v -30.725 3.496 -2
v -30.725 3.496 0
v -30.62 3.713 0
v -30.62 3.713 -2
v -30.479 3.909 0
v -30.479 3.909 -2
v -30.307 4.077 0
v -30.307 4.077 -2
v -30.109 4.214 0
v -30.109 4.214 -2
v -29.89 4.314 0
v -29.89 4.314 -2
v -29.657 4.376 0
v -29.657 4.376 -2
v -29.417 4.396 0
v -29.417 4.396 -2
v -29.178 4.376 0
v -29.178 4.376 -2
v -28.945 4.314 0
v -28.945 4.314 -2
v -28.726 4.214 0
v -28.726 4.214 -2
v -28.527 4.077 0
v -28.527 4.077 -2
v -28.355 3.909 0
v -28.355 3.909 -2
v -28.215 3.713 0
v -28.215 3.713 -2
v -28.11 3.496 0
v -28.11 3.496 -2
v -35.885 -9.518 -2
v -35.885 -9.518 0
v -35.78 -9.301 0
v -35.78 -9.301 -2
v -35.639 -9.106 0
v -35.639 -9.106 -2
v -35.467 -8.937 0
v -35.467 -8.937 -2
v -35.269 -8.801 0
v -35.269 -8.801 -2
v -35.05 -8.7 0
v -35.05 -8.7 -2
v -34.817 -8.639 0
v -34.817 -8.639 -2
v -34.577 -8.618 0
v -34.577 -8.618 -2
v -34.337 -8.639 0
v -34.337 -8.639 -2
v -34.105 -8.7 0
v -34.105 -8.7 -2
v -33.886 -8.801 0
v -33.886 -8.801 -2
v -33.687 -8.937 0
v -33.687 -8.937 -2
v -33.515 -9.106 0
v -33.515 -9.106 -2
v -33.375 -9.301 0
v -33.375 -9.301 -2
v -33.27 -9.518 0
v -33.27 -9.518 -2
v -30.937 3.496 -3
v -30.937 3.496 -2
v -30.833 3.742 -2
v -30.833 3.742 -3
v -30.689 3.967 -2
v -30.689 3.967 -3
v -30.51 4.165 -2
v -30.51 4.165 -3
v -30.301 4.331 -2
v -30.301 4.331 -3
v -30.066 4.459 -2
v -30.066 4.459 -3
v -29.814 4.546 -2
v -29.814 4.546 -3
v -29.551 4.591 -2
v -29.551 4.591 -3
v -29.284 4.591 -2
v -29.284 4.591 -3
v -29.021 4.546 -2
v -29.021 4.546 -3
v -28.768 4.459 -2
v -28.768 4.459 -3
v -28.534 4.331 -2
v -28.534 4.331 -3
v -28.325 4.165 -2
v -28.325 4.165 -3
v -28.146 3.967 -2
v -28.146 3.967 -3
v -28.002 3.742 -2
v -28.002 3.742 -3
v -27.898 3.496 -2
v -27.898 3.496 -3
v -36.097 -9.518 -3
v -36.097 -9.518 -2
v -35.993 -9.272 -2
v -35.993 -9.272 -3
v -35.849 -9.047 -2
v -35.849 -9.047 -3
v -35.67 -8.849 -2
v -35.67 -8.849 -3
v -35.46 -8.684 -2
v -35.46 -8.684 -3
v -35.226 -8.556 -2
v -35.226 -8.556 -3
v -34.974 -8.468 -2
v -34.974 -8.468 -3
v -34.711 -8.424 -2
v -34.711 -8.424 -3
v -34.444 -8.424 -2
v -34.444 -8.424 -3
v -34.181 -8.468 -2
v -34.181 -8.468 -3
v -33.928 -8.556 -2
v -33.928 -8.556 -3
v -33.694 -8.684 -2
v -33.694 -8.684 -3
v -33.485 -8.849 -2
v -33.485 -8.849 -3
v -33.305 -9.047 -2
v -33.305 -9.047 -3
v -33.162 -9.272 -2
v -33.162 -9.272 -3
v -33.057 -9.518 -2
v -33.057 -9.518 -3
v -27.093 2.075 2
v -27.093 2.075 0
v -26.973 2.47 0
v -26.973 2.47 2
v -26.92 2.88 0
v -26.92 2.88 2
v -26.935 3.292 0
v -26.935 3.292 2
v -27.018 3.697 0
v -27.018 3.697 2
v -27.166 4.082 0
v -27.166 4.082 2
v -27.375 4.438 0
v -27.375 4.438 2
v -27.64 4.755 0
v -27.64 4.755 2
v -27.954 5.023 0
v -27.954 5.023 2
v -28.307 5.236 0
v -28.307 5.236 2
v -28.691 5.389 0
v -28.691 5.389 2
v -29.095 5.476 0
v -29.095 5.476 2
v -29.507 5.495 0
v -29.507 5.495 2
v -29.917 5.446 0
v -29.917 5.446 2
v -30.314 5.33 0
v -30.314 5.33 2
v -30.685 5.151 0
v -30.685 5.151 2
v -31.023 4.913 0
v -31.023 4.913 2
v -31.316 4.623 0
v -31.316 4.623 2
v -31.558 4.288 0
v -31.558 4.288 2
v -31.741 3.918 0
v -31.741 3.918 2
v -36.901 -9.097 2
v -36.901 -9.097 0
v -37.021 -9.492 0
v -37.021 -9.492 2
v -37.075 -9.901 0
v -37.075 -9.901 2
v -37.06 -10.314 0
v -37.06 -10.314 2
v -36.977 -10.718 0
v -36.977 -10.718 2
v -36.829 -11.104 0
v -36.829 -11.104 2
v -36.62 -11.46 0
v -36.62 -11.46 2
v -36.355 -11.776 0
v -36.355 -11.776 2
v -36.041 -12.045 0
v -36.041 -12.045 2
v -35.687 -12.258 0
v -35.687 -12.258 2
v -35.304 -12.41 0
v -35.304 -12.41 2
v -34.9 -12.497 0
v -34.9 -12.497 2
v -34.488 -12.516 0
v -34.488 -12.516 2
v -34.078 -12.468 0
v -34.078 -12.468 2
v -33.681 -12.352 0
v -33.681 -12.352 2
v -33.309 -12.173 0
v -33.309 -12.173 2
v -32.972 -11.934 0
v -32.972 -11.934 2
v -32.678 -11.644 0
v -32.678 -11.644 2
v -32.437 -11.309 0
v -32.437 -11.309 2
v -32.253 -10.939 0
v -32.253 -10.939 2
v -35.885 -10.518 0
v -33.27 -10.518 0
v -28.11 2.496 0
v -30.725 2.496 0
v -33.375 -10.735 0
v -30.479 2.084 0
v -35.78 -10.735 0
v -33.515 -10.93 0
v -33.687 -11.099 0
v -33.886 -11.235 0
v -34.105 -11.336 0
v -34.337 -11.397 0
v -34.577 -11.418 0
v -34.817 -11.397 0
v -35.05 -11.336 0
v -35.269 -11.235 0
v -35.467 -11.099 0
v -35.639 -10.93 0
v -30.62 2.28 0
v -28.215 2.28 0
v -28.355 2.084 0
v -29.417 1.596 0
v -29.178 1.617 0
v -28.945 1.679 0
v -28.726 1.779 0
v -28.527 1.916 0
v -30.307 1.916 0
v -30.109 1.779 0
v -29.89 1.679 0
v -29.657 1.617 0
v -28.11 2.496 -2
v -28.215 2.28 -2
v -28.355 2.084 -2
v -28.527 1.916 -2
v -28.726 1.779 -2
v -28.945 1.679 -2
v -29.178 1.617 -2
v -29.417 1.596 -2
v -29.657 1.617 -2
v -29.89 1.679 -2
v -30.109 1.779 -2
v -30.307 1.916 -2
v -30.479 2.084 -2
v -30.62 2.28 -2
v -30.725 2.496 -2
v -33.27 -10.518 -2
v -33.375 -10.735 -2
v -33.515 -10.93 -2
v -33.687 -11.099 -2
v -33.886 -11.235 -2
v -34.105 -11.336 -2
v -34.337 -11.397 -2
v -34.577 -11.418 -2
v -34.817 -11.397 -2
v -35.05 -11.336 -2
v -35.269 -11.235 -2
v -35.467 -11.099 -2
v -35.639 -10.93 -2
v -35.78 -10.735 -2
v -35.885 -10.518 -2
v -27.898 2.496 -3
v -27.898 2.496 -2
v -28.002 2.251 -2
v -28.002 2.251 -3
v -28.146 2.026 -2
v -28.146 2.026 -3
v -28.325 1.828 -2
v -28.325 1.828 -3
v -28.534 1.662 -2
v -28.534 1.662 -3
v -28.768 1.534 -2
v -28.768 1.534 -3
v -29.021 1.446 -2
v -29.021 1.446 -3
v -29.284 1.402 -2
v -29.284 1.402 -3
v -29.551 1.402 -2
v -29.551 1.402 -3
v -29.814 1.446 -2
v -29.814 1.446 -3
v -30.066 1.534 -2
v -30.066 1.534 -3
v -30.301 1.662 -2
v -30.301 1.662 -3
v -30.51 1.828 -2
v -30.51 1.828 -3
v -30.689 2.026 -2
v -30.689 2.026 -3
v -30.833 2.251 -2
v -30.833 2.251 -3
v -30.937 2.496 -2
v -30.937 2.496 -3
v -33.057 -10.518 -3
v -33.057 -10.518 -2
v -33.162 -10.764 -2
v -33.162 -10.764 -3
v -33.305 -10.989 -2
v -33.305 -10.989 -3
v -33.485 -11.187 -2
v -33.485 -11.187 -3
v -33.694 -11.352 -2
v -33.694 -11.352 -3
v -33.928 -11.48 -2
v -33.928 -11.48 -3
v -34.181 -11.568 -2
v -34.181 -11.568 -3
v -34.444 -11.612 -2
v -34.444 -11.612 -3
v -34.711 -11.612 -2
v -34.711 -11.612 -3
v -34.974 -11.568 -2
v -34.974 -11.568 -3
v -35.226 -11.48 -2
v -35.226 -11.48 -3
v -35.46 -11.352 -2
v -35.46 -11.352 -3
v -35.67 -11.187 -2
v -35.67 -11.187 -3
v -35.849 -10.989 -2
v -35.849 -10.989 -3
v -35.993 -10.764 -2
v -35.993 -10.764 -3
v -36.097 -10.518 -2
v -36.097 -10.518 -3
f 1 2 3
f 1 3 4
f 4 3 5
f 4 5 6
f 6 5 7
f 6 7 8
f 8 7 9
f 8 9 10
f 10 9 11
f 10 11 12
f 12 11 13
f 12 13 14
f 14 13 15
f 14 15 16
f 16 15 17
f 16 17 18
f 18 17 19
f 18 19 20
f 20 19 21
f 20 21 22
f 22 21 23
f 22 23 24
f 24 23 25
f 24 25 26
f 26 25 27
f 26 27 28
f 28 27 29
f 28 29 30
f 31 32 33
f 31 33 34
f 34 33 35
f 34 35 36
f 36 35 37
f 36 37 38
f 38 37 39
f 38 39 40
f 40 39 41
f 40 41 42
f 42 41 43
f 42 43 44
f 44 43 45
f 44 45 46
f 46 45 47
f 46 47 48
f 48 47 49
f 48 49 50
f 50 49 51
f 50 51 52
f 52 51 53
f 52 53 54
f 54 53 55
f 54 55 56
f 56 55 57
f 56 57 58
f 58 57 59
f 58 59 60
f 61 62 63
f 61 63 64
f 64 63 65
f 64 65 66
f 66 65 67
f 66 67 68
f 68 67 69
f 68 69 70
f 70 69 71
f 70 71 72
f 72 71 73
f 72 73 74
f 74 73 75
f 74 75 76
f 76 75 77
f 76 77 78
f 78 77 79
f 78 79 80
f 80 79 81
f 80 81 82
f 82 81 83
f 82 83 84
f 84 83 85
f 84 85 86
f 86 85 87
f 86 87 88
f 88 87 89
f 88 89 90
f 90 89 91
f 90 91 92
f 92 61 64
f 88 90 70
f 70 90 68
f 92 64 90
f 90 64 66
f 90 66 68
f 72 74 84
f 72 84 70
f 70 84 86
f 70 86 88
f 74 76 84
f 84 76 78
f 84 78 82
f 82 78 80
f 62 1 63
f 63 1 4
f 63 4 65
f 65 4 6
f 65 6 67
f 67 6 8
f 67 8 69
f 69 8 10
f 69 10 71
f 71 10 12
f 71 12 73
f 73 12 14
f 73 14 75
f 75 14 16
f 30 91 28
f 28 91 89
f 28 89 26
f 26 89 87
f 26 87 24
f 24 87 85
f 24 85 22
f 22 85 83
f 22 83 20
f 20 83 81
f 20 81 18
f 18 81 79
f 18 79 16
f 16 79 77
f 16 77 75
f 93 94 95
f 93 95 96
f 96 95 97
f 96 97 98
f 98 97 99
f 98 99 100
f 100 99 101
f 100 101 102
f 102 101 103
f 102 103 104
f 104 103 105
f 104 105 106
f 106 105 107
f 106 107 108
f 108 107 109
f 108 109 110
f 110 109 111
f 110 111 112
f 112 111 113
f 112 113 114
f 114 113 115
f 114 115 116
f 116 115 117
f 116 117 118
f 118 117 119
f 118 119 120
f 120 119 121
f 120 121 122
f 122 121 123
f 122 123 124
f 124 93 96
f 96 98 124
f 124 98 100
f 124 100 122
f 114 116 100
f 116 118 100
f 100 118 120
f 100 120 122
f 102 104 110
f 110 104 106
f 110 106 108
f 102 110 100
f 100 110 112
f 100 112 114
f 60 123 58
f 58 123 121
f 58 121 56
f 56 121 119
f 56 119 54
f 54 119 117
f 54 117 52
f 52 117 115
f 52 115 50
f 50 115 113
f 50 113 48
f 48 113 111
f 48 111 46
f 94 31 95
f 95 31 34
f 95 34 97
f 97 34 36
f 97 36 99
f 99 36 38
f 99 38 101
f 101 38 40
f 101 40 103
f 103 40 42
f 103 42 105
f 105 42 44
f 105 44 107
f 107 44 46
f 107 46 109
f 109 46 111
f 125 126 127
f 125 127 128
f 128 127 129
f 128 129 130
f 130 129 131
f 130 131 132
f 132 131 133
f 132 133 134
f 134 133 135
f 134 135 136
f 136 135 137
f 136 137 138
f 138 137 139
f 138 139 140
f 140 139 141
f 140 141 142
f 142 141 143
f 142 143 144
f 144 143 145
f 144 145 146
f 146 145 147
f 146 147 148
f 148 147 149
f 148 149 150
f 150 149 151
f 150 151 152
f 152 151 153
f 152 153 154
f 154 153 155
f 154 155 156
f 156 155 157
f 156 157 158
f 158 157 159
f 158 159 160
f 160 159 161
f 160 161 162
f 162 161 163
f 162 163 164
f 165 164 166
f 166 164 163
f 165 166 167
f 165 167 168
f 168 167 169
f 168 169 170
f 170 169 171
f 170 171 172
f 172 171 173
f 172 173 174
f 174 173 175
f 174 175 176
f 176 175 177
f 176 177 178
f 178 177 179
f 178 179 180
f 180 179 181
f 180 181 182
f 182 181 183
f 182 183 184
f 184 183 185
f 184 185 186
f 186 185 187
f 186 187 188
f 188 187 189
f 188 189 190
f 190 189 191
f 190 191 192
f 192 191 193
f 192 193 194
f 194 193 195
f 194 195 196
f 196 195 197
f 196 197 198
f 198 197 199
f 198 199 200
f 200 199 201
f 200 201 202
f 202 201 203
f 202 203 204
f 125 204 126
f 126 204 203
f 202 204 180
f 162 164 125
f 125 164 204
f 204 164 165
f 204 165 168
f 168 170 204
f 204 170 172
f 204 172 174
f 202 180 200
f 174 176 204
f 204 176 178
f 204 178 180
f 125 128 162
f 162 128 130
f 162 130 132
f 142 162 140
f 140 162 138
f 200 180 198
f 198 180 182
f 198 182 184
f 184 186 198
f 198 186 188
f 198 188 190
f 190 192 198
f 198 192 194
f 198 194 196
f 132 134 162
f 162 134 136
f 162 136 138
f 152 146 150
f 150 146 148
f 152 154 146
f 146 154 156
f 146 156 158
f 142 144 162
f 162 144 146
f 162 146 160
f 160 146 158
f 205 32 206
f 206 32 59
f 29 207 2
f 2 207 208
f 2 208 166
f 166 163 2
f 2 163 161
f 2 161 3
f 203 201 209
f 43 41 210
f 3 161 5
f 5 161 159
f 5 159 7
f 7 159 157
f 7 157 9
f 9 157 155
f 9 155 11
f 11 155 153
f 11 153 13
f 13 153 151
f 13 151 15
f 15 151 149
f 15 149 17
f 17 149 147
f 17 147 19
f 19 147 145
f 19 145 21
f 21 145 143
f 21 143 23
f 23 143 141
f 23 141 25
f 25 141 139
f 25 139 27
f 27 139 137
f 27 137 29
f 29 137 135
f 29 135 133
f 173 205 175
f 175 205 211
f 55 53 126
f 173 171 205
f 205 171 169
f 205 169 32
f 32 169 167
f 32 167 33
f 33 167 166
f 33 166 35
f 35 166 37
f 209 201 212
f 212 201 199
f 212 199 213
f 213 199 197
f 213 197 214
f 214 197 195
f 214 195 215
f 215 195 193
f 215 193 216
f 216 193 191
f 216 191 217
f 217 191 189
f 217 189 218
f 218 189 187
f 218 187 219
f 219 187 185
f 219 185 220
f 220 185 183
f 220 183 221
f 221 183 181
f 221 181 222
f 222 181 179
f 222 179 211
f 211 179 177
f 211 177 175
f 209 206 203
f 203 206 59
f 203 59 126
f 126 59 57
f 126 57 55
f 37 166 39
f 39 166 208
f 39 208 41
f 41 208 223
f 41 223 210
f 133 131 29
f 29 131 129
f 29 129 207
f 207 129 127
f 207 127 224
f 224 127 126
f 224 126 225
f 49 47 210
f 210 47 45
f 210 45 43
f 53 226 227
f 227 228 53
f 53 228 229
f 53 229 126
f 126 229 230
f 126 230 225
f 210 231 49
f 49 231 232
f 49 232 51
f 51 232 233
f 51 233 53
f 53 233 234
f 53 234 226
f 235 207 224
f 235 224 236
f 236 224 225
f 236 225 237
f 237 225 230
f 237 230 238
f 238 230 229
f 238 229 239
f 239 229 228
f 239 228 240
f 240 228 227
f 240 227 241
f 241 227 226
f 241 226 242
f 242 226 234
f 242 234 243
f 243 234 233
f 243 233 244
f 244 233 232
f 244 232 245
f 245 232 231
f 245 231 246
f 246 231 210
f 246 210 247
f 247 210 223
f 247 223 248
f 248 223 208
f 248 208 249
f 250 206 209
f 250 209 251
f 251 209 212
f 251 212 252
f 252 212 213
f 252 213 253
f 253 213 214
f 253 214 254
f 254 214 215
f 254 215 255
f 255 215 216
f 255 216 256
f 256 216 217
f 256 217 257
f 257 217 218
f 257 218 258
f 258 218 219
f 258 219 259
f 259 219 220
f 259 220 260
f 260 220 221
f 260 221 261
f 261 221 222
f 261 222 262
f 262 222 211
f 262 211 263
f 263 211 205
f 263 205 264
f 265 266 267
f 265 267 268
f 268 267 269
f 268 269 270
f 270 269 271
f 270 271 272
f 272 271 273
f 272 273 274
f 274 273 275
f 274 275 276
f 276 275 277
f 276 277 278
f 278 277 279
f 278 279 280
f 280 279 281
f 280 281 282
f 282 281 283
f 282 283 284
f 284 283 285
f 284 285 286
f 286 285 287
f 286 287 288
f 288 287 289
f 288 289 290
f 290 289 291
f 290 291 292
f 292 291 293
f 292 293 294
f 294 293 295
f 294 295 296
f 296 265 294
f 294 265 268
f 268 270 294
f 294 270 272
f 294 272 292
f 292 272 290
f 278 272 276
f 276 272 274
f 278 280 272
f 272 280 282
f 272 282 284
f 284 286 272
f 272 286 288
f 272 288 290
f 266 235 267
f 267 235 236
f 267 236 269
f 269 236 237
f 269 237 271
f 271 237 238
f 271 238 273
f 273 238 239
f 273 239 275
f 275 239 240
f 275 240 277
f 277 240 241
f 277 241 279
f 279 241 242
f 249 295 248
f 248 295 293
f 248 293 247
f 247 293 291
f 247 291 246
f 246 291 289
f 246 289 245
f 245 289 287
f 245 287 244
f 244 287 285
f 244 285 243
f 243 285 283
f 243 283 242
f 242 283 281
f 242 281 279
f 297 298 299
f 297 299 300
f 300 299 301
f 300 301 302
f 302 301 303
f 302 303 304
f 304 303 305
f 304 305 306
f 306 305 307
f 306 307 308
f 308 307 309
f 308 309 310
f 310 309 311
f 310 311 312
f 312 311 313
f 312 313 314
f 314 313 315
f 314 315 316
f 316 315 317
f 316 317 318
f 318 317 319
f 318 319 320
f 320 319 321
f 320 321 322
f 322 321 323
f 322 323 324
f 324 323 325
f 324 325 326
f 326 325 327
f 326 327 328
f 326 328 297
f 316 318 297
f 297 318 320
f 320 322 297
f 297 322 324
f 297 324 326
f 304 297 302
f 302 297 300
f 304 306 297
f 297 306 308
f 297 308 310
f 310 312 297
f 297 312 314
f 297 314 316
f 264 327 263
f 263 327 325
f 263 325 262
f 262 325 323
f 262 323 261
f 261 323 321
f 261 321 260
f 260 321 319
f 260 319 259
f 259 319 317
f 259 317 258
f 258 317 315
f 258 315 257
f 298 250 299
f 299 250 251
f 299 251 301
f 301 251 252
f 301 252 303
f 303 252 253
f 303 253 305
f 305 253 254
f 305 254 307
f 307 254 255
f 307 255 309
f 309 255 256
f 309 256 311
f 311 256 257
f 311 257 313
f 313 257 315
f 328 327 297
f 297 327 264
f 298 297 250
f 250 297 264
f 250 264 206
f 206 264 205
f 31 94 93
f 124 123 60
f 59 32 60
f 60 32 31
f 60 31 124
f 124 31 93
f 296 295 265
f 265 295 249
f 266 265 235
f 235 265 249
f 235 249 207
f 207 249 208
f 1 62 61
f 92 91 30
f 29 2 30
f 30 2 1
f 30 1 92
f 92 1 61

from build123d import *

# Parameters (mm, degrees)
BOSS_EXTRU_1_DEPTH      = 2
ESQUISSE2_R             = 1.4
BOSS_EXTRU_2_DEPTH      = 2
ESQUISSE3_R             = 1.6
BOSS_EXTRU_3_DEPTH      = 1
ESQUISSE4_W             = 4
ESQUISSE4_H             = 1
ENL_V_MAT_EXTRU_1_DEPTH = 3


with BuildPart() as part:
    # Esquisse1 → Boss.-Extru.1 (new body)
    with BuildSketch(Plane.XY):
        with BuildLine():
            Line((-27.09345354, 2.075059053), (-32.253315255, -10.939387807))
            ThreePointArc((-32.253315255, -10.939387807), (-35.4987275, -12.341992297), (-36.901331991, -9.096580052))
            Line((-36.901331991, -9.096580052), (-31.741470275, 3.917866809))
            ThreePointArc((-31.741470275, 3.917866809), (-28.49605803, 5.320471299), (-27.09345354, 2.075059053))
        make_face()
    extrude(amount=BOSS_EXTRU_1_DEPTH)

    # Esquisse2 → Boss.-Extru.2 (add)
    with BuildSketch(Plane(origin=(0, 0, 0), x_dir=(-1, 0, 0), z_dir=(0, 0, -1))):
        with Locations(Location((29.417461908, 2.996462931, 0), (0, 0, 180))):
            Circle(ESQUISSE2_R)
        with Locations(Location((34.577323623, -10.017983929, 0), (0, 0, 180))):
            Circle(ESQUISSE2_R)
    extrude(amount=BOSS_EXTRU_2_DEPTH)

    # Esquisse3 → Boss.-Extru.3 (add)
    with BuildSketch(Plane(origin=(0, 0, -2), x_dir=(-1, 0, 0), z_dir=(0, 0, -1))):
        with Locations((34.577323623, -10.017983929)):
            Circle(ESQUISSE3_R)
        with Locations((29.417461908, 2.996462931)):
            Circle(ESQUISSE3_R)
    extrude(amount=BOSS_EXTRU_3_DEPTH)

    # Esquisse4 → Enlèv. mat.-Extru.1 (cut)
    with BuildSketch(Plane(origin=(0, 0, -3), x_dir=(-1, 0, 0), z_dir=(0, 0, -1))):
        with Locations((29.417461908, 2.996462931)):
            Rectangle(ESQUISSE4_W, ESQUISSE4_H)
        with Locations((34.577323623, -10.017983929)):
            Rectangle(ESQUISSE4_W, ESQUISSE4_H)
    extrude(amount=-ENL_V_MAT_EXTRU_1_DEPTH, mode=Mode.SUBTRACT)


solid = part.part
